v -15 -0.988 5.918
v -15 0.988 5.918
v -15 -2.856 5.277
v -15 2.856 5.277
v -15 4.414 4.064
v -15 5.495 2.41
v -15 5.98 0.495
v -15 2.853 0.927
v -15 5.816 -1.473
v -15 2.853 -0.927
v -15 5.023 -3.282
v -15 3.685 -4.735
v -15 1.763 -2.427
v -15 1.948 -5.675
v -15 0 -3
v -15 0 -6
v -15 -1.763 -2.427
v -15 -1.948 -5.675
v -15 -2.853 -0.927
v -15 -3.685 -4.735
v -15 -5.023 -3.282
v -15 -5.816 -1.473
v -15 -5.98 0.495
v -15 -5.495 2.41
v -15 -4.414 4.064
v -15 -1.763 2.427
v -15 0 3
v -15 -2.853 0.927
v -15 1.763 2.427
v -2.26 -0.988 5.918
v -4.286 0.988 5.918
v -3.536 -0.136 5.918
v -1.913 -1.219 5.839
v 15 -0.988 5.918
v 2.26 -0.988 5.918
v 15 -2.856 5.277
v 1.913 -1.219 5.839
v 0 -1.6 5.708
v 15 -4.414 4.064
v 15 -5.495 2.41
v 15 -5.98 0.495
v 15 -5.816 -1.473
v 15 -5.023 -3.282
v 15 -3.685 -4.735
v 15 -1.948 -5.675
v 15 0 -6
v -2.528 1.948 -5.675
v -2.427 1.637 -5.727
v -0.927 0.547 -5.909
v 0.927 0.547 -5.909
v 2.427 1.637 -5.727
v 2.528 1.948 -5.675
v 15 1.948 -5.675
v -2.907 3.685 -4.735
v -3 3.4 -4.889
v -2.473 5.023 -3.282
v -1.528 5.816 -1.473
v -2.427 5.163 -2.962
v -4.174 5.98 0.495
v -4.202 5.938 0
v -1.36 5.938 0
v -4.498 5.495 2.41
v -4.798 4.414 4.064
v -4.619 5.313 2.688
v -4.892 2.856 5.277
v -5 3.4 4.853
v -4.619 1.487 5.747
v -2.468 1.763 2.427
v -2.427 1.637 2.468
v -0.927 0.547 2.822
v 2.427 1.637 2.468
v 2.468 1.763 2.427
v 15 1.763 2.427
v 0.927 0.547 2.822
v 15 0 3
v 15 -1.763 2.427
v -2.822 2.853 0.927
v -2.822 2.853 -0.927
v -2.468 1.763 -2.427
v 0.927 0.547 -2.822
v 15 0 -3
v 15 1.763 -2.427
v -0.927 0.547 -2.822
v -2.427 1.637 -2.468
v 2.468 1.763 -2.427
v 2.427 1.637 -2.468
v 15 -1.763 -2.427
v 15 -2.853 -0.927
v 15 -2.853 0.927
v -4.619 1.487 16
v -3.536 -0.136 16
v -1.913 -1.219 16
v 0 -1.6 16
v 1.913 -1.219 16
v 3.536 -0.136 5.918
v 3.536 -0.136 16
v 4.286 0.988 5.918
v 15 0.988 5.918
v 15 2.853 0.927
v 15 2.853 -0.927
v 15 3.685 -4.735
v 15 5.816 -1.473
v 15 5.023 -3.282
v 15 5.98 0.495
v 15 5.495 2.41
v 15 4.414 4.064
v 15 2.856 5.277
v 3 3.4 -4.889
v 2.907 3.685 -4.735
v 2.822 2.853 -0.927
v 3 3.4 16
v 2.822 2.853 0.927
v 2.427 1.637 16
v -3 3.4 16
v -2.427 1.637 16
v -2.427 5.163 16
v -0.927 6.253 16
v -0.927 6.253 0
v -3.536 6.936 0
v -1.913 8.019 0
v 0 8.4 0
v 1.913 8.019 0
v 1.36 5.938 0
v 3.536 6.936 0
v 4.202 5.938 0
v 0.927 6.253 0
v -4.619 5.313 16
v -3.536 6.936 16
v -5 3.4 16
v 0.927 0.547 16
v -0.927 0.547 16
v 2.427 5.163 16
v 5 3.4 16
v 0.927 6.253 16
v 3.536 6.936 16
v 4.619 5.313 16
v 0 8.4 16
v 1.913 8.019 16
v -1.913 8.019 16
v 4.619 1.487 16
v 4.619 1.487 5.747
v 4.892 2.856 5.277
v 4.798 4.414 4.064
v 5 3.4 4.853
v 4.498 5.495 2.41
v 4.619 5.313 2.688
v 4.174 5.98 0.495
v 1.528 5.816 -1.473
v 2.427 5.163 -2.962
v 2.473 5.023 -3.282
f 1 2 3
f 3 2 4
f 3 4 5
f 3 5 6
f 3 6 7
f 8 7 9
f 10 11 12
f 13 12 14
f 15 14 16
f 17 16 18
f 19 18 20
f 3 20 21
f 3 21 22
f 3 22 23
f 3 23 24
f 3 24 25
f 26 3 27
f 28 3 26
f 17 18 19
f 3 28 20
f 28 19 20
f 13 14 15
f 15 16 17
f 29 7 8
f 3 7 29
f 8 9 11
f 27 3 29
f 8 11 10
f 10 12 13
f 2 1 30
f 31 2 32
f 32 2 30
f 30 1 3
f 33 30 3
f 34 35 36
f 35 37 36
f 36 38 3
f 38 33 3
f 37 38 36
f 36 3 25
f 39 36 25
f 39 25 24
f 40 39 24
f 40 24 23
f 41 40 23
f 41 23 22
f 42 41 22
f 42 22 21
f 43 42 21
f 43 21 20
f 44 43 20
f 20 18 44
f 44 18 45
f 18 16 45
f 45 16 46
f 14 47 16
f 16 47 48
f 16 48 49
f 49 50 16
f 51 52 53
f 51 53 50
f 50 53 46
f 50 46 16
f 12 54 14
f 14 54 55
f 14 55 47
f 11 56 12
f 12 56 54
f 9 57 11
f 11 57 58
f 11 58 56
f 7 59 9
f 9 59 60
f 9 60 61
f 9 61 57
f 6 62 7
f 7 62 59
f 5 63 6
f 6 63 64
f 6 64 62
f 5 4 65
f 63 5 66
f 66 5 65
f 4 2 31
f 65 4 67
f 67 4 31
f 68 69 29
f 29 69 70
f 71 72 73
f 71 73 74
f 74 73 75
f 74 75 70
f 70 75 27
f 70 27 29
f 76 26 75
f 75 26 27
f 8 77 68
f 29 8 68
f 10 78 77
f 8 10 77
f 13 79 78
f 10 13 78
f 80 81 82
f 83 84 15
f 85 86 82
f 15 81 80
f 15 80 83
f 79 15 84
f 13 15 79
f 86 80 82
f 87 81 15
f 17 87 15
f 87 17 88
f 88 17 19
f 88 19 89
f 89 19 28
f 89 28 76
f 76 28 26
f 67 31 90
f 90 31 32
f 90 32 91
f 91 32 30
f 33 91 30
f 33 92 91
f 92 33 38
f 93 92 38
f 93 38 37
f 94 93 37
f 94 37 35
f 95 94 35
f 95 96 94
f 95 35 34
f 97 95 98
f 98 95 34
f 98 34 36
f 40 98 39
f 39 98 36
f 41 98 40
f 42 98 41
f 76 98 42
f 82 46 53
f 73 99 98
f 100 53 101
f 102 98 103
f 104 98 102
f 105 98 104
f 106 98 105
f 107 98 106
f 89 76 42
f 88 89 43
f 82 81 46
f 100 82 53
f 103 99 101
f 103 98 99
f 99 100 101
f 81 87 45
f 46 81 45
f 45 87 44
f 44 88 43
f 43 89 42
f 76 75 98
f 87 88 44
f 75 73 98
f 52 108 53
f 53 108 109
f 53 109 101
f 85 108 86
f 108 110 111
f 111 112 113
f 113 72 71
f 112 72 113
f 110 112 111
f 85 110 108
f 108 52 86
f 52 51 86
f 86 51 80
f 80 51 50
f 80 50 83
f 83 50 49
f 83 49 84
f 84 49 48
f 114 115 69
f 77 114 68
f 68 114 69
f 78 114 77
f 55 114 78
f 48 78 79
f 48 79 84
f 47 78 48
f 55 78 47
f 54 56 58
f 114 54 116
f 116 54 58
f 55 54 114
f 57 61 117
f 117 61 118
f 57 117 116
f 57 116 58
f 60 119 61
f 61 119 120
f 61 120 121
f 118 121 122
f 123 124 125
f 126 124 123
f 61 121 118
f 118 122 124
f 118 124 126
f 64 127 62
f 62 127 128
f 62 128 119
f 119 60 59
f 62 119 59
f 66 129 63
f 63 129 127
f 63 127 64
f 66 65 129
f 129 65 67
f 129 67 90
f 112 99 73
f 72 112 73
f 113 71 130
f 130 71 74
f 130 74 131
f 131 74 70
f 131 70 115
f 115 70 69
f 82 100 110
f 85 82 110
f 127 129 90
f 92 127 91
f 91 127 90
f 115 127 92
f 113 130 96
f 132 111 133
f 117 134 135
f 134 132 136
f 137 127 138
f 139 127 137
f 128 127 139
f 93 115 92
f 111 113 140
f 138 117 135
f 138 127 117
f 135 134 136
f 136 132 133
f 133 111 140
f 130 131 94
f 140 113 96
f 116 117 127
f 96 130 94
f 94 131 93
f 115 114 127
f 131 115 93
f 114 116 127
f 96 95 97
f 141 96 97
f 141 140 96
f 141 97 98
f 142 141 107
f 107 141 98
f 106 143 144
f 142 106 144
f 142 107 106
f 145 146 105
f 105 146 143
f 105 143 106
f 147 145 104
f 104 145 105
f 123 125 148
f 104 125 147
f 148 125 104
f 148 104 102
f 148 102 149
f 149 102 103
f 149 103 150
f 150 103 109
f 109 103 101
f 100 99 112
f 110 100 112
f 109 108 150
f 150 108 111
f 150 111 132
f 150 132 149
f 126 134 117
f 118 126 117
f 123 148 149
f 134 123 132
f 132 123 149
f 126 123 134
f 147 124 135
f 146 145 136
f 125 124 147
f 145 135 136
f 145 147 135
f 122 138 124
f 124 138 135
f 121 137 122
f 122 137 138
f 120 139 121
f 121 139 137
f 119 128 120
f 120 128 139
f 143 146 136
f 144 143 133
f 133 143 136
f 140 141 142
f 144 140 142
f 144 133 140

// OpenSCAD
difference() {
	union() {
		translate(v = [0, 3.4000000000, 0]) {
			cylinder(h = 16, r = 5);
		}
		translate(v = [-15, 0, 0]) {
			rotate(a = [0, 90, 0]) {
				cylinder(h = 30, r = 6);
			}
		}
	}
	union() {
		translate(v = [0, 3.4000000000, -15]) {
			cylinder(h = 45, r = 3);
		}
		translate(v = [-30, 0, 0]) {
			rotate(a = [0, 90, 0]) {
				cylinder(h = 60, r = 3);
			}
		}
	}
}
